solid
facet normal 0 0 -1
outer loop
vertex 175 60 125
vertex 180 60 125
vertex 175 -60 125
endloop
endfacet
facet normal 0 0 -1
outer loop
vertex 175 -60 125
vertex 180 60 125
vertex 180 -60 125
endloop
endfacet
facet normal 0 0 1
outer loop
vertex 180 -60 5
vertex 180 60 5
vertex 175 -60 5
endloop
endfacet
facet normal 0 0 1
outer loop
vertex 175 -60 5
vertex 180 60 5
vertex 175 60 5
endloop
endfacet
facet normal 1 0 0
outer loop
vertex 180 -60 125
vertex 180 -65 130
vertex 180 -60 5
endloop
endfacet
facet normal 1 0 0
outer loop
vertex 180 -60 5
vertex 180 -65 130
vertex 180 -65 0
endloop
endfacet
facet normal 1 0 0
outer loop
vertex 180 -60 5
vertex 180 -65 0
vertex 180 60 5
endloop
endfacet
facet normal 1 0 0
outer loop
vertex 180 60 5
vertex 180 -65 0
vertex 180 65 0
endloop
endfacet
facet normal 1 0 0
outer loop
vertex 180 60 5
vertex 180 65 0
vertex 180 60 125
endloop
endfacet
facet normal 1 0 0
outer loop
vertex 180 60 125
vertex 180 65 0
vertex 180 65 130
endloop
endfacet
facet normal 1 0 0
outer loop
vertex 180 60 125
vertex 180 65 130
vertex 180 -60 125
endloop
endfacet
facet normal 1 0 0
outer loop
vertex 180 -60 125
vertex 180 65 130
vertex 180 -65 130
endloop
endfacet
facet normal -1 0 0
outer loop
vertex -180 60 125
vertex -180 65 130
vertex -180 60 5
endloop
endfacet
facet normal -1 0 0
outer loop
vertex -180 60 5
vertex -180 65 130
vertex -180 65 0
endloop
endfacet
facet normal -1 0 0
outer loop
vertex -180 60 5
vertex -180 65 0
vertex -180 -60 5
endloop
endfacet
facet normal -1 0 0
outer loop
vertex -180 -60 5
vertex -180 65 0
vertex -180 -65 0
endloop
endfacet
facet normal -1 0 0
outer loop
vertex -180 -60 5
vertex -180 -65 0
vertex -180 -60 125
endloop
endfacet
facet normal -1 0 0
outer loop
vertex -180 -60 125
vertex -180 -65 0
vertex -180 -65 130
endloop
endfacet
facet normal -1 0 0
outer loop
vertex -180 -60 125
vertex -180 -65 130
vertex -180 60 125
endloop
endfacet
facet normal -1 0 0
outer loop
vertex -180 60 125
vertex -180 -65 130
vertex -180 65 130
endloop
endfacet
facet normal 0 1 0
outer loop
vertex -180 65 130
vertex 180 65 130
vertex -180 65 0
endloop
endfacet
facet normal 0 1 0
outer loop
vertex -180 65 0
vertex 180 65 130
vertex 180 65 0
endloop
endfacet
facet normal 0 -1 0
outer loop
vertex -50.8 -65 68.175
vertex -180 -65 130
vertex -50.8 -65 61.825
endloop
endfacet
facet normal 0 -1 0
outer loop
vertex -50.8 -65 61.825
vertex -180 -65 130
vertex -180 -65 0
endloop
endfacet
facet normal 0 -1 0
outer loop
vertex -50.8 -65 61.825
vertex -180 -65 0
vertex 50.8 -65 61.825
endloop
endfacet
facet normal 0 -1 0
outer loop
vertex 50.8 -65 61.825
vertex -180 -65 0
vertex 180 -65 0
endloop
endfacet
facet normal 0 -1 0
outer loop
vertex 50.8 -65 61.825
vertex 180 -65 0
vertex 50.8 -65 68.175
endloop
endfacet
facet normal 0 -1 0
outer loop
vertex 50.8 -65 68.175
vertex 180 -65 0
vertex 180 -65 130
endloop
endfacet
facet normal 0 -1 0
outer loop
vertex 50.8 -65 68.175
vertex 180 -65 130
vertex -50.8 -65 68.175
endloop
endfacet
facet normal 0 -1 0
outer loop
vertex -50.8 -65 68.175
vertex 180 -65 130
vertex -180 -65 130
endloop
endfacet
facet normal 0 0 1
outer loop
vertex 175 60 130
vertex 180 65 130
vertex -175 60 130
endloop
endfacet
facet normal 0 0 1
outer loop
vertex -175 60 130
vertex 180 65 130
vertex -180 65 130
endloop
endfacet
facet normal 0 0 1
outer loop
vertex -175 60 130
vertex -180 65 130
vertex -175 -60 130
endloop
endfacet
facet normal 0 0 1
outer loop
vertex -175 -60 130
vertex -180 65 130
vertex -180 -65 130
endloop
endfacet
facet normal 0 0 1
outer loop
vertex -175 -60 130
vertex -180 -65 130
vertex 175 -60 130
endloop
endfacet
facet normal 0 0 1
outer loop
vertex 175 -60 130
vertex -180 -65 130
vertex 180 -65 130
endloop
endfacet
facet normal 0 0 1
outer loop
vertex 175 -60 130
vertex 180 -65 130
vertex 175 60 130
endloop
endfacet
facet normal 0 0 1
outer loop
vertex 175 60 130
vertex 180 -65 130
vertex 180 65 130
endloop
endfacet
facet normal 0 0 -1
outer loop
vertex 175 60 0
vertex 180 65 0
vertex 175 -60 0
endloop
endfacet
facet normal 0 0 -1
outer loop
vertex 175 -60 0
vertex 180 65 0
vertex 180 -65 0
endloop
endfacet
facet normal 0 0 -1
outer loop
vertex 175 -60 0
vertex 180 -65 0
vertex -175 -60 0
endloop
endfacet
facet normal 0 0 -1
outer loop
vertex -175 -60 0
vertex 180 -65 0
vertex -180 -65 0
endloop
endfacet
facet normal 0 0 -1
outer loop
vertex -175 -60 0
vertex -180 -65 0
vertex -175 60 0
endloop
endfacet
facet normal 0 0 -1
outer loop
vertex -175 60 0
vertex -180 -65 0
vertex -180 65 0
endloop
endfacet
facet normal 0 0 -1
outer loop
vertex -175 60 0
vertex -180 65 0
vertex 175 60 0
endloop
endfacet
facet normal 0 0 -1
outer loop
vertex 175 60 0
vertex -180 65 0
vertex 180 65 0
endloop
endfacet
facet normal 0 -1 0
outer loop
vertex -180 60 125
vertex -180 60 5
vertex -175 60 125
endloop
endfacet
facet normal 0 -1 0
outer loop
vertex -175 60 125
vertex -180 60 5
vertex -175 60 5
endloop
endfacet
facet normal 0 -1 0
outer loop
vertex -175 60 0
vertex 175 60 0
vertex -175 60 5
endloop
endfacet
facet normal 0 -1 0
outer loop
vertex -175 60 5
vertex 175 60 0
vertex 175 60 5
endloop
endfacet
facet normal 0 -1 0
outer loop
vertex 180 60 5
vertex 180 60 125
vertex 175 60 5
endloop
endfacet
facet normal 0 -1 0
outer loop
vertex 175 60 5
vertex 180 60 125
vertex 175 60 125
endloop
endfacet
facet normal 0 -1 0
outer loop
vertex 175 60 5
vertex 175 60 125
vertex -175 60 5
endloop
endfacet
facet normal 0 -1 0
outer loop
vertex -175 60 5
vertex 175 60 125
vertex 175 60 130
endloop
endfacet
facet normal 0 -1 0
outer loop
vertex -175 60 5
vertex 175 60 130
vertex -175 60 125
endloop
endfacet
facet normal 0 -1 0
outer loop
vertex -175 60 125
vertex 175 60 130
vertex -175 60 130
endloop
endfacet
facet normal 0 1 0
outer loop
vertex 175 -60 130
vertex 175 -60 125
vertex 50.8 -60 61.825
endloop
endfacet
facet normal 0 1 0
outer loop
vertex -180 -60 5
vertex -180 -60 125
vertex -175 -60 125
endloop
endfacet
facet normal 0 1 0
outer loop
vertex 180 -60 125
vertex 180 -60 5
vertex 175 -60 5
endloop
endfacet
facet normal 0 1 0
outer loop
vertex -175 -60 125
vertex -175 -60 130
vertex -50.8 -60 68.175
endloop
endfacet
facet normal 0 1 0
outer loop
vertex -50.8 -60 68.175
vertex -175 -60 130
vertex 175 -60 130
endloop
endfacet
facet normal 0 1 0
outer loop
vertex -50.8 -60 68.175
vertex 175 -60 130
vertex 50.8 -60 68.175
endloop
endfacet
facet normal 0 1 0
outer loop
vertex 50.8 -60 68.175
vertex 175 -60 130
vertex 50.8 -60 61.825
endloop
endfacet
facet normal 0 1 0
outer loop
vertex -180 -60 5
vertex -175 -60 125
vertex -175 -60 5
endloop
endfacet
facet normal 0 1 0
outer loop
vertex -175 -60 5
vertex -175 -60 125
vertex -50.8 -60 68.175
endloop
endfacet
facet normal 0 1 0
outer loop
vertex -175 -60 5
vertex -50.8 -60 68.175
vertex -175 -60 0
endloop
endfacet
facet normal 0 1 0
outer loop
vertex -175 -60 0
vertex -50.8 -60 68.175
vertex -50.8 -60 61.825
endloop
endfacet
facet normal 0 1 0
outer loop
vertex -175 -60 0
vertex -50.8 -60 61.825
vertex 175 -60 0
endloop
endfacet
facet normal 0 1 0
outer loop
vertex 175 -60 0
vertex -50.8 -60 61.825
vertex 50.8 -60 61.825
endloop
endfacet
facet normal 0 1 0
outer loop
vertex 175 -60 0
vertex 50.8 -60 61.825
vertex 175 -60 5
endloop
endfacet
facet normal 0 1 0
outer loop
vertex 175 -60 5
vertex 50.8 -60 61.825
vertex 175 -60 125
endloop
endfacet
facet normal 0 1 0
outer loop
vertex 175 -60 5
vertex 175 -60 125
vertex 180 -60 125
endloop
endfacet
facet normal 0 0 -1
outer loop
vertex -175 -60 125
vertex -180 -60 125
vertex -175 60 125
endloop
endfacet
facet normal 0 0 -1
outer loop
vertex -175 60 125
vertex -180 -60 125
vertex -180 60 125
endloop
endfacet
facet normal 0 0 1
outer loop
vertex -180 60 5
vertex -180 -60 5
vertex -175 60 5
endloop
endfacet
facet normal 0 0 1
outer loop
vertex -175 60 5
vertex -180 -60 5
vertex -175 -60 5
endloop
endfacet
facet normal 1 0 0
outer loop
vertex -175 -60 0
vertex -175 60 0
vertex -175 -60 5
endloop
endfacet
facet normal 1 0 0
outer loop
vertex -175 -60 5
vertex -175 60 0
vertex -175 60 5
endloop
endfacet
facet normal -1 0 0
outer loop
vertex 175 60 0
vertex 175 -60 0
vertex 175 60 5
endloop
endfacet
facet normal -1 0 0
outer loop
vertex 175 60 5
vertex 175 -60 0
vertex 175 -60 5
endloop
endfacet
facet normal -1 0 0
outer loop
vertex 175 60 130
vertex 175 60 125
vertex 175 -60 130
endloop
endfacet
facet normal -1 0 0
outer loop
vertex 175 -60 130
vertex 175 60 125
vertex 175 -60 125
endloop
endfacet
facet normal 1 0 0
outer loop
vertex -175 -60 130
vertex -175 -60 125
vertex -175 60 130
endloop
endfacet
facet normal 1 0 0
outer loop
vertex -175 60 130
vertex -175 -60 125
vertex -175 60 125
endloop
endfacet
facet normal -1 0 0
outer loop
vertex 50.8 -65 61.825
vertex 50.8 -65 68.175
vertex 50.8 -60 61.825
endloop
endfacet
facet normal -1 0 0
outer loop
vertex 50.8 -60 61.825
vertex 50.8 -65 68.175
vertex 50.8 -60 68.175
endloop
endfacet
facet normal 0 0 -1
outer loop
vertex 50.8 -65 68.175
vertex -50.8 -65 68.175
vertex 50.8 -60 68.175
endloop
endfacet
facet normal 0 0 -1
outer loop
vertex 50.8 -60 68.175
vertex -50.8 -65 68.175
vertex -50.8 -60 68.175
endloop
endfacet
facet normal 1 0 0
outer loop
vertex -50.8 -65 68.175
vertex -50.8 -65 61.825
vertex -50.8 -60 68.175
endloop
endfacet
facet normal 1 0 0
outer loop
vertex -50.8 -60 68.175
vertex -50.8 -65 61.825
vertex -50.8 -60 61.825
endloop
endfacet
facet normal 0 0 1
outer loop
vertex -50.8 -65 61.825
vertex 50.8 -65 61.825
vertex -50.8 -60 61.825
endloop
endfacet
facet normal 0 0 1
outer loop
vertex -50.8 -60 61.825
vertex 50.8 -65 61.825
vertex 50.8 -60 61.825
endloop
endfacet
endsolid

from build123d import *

# Parameters (mm, degrees)
SKETCH1_W           = 360
SKETCH1_H           = 130
BOSS_EXTRUDE1_DEPTH = 130
SHELL1_T            = -5
SKETCH2_W           = 350
SKETCH2_H           = 120
CUT_EXTRUDE1_DEPTH  = 232.354706025
SKETCH3_W           = 101.6
SKETCH3_H           = 6.35
CUT_EXTRUDE2_DEPTH  = 255.803846125


with BuildPart() as part:
    # Sketch1 → Boss-Extrude1 (new body)
    with BuildSketch(Plane.XY):
        Rectangle(SKETCH1_W, SKETCH1_H)
    extrude(amount=BOSS_EXTRUDE1_DEPTH)

    # Shell1
    shell1_openings = [part.faces().sort_by_distance(p)[0] for p in [
        (-180, 0, 65),
        (180, 0, 65),
    ]]
    offset(amount=SHELL1_T, openings=shell1_openings, kind=Kind.INTERSECTION)

    # Sketch2 → Cut-Extrude1 (cut, through all)
    with BuildSketch(Plane.XY.offset(130)):
        Rectangle(SKETCH2_W, SKETCH2_H)
    extrude(amount=-CUT_EXTRUDE1_DEPTH, mode=Mode.SUBTRACT)

    # Sketch3 → Cut-Extrude2 (cut, through all)
    with BuildSketch(Plane(origin=(0, -60, 0), x_dir=(1, 0, 0), z_dir=(0, 1, 0))):
        with Locations((0, -65)):
            Rectangle(SKETCH3_W, SKETCH3_H)
    extrude(amount=-CUT_EXTRUDE2_DEPTH, mode=Mode.SUBTRACT)


solid = part.part
